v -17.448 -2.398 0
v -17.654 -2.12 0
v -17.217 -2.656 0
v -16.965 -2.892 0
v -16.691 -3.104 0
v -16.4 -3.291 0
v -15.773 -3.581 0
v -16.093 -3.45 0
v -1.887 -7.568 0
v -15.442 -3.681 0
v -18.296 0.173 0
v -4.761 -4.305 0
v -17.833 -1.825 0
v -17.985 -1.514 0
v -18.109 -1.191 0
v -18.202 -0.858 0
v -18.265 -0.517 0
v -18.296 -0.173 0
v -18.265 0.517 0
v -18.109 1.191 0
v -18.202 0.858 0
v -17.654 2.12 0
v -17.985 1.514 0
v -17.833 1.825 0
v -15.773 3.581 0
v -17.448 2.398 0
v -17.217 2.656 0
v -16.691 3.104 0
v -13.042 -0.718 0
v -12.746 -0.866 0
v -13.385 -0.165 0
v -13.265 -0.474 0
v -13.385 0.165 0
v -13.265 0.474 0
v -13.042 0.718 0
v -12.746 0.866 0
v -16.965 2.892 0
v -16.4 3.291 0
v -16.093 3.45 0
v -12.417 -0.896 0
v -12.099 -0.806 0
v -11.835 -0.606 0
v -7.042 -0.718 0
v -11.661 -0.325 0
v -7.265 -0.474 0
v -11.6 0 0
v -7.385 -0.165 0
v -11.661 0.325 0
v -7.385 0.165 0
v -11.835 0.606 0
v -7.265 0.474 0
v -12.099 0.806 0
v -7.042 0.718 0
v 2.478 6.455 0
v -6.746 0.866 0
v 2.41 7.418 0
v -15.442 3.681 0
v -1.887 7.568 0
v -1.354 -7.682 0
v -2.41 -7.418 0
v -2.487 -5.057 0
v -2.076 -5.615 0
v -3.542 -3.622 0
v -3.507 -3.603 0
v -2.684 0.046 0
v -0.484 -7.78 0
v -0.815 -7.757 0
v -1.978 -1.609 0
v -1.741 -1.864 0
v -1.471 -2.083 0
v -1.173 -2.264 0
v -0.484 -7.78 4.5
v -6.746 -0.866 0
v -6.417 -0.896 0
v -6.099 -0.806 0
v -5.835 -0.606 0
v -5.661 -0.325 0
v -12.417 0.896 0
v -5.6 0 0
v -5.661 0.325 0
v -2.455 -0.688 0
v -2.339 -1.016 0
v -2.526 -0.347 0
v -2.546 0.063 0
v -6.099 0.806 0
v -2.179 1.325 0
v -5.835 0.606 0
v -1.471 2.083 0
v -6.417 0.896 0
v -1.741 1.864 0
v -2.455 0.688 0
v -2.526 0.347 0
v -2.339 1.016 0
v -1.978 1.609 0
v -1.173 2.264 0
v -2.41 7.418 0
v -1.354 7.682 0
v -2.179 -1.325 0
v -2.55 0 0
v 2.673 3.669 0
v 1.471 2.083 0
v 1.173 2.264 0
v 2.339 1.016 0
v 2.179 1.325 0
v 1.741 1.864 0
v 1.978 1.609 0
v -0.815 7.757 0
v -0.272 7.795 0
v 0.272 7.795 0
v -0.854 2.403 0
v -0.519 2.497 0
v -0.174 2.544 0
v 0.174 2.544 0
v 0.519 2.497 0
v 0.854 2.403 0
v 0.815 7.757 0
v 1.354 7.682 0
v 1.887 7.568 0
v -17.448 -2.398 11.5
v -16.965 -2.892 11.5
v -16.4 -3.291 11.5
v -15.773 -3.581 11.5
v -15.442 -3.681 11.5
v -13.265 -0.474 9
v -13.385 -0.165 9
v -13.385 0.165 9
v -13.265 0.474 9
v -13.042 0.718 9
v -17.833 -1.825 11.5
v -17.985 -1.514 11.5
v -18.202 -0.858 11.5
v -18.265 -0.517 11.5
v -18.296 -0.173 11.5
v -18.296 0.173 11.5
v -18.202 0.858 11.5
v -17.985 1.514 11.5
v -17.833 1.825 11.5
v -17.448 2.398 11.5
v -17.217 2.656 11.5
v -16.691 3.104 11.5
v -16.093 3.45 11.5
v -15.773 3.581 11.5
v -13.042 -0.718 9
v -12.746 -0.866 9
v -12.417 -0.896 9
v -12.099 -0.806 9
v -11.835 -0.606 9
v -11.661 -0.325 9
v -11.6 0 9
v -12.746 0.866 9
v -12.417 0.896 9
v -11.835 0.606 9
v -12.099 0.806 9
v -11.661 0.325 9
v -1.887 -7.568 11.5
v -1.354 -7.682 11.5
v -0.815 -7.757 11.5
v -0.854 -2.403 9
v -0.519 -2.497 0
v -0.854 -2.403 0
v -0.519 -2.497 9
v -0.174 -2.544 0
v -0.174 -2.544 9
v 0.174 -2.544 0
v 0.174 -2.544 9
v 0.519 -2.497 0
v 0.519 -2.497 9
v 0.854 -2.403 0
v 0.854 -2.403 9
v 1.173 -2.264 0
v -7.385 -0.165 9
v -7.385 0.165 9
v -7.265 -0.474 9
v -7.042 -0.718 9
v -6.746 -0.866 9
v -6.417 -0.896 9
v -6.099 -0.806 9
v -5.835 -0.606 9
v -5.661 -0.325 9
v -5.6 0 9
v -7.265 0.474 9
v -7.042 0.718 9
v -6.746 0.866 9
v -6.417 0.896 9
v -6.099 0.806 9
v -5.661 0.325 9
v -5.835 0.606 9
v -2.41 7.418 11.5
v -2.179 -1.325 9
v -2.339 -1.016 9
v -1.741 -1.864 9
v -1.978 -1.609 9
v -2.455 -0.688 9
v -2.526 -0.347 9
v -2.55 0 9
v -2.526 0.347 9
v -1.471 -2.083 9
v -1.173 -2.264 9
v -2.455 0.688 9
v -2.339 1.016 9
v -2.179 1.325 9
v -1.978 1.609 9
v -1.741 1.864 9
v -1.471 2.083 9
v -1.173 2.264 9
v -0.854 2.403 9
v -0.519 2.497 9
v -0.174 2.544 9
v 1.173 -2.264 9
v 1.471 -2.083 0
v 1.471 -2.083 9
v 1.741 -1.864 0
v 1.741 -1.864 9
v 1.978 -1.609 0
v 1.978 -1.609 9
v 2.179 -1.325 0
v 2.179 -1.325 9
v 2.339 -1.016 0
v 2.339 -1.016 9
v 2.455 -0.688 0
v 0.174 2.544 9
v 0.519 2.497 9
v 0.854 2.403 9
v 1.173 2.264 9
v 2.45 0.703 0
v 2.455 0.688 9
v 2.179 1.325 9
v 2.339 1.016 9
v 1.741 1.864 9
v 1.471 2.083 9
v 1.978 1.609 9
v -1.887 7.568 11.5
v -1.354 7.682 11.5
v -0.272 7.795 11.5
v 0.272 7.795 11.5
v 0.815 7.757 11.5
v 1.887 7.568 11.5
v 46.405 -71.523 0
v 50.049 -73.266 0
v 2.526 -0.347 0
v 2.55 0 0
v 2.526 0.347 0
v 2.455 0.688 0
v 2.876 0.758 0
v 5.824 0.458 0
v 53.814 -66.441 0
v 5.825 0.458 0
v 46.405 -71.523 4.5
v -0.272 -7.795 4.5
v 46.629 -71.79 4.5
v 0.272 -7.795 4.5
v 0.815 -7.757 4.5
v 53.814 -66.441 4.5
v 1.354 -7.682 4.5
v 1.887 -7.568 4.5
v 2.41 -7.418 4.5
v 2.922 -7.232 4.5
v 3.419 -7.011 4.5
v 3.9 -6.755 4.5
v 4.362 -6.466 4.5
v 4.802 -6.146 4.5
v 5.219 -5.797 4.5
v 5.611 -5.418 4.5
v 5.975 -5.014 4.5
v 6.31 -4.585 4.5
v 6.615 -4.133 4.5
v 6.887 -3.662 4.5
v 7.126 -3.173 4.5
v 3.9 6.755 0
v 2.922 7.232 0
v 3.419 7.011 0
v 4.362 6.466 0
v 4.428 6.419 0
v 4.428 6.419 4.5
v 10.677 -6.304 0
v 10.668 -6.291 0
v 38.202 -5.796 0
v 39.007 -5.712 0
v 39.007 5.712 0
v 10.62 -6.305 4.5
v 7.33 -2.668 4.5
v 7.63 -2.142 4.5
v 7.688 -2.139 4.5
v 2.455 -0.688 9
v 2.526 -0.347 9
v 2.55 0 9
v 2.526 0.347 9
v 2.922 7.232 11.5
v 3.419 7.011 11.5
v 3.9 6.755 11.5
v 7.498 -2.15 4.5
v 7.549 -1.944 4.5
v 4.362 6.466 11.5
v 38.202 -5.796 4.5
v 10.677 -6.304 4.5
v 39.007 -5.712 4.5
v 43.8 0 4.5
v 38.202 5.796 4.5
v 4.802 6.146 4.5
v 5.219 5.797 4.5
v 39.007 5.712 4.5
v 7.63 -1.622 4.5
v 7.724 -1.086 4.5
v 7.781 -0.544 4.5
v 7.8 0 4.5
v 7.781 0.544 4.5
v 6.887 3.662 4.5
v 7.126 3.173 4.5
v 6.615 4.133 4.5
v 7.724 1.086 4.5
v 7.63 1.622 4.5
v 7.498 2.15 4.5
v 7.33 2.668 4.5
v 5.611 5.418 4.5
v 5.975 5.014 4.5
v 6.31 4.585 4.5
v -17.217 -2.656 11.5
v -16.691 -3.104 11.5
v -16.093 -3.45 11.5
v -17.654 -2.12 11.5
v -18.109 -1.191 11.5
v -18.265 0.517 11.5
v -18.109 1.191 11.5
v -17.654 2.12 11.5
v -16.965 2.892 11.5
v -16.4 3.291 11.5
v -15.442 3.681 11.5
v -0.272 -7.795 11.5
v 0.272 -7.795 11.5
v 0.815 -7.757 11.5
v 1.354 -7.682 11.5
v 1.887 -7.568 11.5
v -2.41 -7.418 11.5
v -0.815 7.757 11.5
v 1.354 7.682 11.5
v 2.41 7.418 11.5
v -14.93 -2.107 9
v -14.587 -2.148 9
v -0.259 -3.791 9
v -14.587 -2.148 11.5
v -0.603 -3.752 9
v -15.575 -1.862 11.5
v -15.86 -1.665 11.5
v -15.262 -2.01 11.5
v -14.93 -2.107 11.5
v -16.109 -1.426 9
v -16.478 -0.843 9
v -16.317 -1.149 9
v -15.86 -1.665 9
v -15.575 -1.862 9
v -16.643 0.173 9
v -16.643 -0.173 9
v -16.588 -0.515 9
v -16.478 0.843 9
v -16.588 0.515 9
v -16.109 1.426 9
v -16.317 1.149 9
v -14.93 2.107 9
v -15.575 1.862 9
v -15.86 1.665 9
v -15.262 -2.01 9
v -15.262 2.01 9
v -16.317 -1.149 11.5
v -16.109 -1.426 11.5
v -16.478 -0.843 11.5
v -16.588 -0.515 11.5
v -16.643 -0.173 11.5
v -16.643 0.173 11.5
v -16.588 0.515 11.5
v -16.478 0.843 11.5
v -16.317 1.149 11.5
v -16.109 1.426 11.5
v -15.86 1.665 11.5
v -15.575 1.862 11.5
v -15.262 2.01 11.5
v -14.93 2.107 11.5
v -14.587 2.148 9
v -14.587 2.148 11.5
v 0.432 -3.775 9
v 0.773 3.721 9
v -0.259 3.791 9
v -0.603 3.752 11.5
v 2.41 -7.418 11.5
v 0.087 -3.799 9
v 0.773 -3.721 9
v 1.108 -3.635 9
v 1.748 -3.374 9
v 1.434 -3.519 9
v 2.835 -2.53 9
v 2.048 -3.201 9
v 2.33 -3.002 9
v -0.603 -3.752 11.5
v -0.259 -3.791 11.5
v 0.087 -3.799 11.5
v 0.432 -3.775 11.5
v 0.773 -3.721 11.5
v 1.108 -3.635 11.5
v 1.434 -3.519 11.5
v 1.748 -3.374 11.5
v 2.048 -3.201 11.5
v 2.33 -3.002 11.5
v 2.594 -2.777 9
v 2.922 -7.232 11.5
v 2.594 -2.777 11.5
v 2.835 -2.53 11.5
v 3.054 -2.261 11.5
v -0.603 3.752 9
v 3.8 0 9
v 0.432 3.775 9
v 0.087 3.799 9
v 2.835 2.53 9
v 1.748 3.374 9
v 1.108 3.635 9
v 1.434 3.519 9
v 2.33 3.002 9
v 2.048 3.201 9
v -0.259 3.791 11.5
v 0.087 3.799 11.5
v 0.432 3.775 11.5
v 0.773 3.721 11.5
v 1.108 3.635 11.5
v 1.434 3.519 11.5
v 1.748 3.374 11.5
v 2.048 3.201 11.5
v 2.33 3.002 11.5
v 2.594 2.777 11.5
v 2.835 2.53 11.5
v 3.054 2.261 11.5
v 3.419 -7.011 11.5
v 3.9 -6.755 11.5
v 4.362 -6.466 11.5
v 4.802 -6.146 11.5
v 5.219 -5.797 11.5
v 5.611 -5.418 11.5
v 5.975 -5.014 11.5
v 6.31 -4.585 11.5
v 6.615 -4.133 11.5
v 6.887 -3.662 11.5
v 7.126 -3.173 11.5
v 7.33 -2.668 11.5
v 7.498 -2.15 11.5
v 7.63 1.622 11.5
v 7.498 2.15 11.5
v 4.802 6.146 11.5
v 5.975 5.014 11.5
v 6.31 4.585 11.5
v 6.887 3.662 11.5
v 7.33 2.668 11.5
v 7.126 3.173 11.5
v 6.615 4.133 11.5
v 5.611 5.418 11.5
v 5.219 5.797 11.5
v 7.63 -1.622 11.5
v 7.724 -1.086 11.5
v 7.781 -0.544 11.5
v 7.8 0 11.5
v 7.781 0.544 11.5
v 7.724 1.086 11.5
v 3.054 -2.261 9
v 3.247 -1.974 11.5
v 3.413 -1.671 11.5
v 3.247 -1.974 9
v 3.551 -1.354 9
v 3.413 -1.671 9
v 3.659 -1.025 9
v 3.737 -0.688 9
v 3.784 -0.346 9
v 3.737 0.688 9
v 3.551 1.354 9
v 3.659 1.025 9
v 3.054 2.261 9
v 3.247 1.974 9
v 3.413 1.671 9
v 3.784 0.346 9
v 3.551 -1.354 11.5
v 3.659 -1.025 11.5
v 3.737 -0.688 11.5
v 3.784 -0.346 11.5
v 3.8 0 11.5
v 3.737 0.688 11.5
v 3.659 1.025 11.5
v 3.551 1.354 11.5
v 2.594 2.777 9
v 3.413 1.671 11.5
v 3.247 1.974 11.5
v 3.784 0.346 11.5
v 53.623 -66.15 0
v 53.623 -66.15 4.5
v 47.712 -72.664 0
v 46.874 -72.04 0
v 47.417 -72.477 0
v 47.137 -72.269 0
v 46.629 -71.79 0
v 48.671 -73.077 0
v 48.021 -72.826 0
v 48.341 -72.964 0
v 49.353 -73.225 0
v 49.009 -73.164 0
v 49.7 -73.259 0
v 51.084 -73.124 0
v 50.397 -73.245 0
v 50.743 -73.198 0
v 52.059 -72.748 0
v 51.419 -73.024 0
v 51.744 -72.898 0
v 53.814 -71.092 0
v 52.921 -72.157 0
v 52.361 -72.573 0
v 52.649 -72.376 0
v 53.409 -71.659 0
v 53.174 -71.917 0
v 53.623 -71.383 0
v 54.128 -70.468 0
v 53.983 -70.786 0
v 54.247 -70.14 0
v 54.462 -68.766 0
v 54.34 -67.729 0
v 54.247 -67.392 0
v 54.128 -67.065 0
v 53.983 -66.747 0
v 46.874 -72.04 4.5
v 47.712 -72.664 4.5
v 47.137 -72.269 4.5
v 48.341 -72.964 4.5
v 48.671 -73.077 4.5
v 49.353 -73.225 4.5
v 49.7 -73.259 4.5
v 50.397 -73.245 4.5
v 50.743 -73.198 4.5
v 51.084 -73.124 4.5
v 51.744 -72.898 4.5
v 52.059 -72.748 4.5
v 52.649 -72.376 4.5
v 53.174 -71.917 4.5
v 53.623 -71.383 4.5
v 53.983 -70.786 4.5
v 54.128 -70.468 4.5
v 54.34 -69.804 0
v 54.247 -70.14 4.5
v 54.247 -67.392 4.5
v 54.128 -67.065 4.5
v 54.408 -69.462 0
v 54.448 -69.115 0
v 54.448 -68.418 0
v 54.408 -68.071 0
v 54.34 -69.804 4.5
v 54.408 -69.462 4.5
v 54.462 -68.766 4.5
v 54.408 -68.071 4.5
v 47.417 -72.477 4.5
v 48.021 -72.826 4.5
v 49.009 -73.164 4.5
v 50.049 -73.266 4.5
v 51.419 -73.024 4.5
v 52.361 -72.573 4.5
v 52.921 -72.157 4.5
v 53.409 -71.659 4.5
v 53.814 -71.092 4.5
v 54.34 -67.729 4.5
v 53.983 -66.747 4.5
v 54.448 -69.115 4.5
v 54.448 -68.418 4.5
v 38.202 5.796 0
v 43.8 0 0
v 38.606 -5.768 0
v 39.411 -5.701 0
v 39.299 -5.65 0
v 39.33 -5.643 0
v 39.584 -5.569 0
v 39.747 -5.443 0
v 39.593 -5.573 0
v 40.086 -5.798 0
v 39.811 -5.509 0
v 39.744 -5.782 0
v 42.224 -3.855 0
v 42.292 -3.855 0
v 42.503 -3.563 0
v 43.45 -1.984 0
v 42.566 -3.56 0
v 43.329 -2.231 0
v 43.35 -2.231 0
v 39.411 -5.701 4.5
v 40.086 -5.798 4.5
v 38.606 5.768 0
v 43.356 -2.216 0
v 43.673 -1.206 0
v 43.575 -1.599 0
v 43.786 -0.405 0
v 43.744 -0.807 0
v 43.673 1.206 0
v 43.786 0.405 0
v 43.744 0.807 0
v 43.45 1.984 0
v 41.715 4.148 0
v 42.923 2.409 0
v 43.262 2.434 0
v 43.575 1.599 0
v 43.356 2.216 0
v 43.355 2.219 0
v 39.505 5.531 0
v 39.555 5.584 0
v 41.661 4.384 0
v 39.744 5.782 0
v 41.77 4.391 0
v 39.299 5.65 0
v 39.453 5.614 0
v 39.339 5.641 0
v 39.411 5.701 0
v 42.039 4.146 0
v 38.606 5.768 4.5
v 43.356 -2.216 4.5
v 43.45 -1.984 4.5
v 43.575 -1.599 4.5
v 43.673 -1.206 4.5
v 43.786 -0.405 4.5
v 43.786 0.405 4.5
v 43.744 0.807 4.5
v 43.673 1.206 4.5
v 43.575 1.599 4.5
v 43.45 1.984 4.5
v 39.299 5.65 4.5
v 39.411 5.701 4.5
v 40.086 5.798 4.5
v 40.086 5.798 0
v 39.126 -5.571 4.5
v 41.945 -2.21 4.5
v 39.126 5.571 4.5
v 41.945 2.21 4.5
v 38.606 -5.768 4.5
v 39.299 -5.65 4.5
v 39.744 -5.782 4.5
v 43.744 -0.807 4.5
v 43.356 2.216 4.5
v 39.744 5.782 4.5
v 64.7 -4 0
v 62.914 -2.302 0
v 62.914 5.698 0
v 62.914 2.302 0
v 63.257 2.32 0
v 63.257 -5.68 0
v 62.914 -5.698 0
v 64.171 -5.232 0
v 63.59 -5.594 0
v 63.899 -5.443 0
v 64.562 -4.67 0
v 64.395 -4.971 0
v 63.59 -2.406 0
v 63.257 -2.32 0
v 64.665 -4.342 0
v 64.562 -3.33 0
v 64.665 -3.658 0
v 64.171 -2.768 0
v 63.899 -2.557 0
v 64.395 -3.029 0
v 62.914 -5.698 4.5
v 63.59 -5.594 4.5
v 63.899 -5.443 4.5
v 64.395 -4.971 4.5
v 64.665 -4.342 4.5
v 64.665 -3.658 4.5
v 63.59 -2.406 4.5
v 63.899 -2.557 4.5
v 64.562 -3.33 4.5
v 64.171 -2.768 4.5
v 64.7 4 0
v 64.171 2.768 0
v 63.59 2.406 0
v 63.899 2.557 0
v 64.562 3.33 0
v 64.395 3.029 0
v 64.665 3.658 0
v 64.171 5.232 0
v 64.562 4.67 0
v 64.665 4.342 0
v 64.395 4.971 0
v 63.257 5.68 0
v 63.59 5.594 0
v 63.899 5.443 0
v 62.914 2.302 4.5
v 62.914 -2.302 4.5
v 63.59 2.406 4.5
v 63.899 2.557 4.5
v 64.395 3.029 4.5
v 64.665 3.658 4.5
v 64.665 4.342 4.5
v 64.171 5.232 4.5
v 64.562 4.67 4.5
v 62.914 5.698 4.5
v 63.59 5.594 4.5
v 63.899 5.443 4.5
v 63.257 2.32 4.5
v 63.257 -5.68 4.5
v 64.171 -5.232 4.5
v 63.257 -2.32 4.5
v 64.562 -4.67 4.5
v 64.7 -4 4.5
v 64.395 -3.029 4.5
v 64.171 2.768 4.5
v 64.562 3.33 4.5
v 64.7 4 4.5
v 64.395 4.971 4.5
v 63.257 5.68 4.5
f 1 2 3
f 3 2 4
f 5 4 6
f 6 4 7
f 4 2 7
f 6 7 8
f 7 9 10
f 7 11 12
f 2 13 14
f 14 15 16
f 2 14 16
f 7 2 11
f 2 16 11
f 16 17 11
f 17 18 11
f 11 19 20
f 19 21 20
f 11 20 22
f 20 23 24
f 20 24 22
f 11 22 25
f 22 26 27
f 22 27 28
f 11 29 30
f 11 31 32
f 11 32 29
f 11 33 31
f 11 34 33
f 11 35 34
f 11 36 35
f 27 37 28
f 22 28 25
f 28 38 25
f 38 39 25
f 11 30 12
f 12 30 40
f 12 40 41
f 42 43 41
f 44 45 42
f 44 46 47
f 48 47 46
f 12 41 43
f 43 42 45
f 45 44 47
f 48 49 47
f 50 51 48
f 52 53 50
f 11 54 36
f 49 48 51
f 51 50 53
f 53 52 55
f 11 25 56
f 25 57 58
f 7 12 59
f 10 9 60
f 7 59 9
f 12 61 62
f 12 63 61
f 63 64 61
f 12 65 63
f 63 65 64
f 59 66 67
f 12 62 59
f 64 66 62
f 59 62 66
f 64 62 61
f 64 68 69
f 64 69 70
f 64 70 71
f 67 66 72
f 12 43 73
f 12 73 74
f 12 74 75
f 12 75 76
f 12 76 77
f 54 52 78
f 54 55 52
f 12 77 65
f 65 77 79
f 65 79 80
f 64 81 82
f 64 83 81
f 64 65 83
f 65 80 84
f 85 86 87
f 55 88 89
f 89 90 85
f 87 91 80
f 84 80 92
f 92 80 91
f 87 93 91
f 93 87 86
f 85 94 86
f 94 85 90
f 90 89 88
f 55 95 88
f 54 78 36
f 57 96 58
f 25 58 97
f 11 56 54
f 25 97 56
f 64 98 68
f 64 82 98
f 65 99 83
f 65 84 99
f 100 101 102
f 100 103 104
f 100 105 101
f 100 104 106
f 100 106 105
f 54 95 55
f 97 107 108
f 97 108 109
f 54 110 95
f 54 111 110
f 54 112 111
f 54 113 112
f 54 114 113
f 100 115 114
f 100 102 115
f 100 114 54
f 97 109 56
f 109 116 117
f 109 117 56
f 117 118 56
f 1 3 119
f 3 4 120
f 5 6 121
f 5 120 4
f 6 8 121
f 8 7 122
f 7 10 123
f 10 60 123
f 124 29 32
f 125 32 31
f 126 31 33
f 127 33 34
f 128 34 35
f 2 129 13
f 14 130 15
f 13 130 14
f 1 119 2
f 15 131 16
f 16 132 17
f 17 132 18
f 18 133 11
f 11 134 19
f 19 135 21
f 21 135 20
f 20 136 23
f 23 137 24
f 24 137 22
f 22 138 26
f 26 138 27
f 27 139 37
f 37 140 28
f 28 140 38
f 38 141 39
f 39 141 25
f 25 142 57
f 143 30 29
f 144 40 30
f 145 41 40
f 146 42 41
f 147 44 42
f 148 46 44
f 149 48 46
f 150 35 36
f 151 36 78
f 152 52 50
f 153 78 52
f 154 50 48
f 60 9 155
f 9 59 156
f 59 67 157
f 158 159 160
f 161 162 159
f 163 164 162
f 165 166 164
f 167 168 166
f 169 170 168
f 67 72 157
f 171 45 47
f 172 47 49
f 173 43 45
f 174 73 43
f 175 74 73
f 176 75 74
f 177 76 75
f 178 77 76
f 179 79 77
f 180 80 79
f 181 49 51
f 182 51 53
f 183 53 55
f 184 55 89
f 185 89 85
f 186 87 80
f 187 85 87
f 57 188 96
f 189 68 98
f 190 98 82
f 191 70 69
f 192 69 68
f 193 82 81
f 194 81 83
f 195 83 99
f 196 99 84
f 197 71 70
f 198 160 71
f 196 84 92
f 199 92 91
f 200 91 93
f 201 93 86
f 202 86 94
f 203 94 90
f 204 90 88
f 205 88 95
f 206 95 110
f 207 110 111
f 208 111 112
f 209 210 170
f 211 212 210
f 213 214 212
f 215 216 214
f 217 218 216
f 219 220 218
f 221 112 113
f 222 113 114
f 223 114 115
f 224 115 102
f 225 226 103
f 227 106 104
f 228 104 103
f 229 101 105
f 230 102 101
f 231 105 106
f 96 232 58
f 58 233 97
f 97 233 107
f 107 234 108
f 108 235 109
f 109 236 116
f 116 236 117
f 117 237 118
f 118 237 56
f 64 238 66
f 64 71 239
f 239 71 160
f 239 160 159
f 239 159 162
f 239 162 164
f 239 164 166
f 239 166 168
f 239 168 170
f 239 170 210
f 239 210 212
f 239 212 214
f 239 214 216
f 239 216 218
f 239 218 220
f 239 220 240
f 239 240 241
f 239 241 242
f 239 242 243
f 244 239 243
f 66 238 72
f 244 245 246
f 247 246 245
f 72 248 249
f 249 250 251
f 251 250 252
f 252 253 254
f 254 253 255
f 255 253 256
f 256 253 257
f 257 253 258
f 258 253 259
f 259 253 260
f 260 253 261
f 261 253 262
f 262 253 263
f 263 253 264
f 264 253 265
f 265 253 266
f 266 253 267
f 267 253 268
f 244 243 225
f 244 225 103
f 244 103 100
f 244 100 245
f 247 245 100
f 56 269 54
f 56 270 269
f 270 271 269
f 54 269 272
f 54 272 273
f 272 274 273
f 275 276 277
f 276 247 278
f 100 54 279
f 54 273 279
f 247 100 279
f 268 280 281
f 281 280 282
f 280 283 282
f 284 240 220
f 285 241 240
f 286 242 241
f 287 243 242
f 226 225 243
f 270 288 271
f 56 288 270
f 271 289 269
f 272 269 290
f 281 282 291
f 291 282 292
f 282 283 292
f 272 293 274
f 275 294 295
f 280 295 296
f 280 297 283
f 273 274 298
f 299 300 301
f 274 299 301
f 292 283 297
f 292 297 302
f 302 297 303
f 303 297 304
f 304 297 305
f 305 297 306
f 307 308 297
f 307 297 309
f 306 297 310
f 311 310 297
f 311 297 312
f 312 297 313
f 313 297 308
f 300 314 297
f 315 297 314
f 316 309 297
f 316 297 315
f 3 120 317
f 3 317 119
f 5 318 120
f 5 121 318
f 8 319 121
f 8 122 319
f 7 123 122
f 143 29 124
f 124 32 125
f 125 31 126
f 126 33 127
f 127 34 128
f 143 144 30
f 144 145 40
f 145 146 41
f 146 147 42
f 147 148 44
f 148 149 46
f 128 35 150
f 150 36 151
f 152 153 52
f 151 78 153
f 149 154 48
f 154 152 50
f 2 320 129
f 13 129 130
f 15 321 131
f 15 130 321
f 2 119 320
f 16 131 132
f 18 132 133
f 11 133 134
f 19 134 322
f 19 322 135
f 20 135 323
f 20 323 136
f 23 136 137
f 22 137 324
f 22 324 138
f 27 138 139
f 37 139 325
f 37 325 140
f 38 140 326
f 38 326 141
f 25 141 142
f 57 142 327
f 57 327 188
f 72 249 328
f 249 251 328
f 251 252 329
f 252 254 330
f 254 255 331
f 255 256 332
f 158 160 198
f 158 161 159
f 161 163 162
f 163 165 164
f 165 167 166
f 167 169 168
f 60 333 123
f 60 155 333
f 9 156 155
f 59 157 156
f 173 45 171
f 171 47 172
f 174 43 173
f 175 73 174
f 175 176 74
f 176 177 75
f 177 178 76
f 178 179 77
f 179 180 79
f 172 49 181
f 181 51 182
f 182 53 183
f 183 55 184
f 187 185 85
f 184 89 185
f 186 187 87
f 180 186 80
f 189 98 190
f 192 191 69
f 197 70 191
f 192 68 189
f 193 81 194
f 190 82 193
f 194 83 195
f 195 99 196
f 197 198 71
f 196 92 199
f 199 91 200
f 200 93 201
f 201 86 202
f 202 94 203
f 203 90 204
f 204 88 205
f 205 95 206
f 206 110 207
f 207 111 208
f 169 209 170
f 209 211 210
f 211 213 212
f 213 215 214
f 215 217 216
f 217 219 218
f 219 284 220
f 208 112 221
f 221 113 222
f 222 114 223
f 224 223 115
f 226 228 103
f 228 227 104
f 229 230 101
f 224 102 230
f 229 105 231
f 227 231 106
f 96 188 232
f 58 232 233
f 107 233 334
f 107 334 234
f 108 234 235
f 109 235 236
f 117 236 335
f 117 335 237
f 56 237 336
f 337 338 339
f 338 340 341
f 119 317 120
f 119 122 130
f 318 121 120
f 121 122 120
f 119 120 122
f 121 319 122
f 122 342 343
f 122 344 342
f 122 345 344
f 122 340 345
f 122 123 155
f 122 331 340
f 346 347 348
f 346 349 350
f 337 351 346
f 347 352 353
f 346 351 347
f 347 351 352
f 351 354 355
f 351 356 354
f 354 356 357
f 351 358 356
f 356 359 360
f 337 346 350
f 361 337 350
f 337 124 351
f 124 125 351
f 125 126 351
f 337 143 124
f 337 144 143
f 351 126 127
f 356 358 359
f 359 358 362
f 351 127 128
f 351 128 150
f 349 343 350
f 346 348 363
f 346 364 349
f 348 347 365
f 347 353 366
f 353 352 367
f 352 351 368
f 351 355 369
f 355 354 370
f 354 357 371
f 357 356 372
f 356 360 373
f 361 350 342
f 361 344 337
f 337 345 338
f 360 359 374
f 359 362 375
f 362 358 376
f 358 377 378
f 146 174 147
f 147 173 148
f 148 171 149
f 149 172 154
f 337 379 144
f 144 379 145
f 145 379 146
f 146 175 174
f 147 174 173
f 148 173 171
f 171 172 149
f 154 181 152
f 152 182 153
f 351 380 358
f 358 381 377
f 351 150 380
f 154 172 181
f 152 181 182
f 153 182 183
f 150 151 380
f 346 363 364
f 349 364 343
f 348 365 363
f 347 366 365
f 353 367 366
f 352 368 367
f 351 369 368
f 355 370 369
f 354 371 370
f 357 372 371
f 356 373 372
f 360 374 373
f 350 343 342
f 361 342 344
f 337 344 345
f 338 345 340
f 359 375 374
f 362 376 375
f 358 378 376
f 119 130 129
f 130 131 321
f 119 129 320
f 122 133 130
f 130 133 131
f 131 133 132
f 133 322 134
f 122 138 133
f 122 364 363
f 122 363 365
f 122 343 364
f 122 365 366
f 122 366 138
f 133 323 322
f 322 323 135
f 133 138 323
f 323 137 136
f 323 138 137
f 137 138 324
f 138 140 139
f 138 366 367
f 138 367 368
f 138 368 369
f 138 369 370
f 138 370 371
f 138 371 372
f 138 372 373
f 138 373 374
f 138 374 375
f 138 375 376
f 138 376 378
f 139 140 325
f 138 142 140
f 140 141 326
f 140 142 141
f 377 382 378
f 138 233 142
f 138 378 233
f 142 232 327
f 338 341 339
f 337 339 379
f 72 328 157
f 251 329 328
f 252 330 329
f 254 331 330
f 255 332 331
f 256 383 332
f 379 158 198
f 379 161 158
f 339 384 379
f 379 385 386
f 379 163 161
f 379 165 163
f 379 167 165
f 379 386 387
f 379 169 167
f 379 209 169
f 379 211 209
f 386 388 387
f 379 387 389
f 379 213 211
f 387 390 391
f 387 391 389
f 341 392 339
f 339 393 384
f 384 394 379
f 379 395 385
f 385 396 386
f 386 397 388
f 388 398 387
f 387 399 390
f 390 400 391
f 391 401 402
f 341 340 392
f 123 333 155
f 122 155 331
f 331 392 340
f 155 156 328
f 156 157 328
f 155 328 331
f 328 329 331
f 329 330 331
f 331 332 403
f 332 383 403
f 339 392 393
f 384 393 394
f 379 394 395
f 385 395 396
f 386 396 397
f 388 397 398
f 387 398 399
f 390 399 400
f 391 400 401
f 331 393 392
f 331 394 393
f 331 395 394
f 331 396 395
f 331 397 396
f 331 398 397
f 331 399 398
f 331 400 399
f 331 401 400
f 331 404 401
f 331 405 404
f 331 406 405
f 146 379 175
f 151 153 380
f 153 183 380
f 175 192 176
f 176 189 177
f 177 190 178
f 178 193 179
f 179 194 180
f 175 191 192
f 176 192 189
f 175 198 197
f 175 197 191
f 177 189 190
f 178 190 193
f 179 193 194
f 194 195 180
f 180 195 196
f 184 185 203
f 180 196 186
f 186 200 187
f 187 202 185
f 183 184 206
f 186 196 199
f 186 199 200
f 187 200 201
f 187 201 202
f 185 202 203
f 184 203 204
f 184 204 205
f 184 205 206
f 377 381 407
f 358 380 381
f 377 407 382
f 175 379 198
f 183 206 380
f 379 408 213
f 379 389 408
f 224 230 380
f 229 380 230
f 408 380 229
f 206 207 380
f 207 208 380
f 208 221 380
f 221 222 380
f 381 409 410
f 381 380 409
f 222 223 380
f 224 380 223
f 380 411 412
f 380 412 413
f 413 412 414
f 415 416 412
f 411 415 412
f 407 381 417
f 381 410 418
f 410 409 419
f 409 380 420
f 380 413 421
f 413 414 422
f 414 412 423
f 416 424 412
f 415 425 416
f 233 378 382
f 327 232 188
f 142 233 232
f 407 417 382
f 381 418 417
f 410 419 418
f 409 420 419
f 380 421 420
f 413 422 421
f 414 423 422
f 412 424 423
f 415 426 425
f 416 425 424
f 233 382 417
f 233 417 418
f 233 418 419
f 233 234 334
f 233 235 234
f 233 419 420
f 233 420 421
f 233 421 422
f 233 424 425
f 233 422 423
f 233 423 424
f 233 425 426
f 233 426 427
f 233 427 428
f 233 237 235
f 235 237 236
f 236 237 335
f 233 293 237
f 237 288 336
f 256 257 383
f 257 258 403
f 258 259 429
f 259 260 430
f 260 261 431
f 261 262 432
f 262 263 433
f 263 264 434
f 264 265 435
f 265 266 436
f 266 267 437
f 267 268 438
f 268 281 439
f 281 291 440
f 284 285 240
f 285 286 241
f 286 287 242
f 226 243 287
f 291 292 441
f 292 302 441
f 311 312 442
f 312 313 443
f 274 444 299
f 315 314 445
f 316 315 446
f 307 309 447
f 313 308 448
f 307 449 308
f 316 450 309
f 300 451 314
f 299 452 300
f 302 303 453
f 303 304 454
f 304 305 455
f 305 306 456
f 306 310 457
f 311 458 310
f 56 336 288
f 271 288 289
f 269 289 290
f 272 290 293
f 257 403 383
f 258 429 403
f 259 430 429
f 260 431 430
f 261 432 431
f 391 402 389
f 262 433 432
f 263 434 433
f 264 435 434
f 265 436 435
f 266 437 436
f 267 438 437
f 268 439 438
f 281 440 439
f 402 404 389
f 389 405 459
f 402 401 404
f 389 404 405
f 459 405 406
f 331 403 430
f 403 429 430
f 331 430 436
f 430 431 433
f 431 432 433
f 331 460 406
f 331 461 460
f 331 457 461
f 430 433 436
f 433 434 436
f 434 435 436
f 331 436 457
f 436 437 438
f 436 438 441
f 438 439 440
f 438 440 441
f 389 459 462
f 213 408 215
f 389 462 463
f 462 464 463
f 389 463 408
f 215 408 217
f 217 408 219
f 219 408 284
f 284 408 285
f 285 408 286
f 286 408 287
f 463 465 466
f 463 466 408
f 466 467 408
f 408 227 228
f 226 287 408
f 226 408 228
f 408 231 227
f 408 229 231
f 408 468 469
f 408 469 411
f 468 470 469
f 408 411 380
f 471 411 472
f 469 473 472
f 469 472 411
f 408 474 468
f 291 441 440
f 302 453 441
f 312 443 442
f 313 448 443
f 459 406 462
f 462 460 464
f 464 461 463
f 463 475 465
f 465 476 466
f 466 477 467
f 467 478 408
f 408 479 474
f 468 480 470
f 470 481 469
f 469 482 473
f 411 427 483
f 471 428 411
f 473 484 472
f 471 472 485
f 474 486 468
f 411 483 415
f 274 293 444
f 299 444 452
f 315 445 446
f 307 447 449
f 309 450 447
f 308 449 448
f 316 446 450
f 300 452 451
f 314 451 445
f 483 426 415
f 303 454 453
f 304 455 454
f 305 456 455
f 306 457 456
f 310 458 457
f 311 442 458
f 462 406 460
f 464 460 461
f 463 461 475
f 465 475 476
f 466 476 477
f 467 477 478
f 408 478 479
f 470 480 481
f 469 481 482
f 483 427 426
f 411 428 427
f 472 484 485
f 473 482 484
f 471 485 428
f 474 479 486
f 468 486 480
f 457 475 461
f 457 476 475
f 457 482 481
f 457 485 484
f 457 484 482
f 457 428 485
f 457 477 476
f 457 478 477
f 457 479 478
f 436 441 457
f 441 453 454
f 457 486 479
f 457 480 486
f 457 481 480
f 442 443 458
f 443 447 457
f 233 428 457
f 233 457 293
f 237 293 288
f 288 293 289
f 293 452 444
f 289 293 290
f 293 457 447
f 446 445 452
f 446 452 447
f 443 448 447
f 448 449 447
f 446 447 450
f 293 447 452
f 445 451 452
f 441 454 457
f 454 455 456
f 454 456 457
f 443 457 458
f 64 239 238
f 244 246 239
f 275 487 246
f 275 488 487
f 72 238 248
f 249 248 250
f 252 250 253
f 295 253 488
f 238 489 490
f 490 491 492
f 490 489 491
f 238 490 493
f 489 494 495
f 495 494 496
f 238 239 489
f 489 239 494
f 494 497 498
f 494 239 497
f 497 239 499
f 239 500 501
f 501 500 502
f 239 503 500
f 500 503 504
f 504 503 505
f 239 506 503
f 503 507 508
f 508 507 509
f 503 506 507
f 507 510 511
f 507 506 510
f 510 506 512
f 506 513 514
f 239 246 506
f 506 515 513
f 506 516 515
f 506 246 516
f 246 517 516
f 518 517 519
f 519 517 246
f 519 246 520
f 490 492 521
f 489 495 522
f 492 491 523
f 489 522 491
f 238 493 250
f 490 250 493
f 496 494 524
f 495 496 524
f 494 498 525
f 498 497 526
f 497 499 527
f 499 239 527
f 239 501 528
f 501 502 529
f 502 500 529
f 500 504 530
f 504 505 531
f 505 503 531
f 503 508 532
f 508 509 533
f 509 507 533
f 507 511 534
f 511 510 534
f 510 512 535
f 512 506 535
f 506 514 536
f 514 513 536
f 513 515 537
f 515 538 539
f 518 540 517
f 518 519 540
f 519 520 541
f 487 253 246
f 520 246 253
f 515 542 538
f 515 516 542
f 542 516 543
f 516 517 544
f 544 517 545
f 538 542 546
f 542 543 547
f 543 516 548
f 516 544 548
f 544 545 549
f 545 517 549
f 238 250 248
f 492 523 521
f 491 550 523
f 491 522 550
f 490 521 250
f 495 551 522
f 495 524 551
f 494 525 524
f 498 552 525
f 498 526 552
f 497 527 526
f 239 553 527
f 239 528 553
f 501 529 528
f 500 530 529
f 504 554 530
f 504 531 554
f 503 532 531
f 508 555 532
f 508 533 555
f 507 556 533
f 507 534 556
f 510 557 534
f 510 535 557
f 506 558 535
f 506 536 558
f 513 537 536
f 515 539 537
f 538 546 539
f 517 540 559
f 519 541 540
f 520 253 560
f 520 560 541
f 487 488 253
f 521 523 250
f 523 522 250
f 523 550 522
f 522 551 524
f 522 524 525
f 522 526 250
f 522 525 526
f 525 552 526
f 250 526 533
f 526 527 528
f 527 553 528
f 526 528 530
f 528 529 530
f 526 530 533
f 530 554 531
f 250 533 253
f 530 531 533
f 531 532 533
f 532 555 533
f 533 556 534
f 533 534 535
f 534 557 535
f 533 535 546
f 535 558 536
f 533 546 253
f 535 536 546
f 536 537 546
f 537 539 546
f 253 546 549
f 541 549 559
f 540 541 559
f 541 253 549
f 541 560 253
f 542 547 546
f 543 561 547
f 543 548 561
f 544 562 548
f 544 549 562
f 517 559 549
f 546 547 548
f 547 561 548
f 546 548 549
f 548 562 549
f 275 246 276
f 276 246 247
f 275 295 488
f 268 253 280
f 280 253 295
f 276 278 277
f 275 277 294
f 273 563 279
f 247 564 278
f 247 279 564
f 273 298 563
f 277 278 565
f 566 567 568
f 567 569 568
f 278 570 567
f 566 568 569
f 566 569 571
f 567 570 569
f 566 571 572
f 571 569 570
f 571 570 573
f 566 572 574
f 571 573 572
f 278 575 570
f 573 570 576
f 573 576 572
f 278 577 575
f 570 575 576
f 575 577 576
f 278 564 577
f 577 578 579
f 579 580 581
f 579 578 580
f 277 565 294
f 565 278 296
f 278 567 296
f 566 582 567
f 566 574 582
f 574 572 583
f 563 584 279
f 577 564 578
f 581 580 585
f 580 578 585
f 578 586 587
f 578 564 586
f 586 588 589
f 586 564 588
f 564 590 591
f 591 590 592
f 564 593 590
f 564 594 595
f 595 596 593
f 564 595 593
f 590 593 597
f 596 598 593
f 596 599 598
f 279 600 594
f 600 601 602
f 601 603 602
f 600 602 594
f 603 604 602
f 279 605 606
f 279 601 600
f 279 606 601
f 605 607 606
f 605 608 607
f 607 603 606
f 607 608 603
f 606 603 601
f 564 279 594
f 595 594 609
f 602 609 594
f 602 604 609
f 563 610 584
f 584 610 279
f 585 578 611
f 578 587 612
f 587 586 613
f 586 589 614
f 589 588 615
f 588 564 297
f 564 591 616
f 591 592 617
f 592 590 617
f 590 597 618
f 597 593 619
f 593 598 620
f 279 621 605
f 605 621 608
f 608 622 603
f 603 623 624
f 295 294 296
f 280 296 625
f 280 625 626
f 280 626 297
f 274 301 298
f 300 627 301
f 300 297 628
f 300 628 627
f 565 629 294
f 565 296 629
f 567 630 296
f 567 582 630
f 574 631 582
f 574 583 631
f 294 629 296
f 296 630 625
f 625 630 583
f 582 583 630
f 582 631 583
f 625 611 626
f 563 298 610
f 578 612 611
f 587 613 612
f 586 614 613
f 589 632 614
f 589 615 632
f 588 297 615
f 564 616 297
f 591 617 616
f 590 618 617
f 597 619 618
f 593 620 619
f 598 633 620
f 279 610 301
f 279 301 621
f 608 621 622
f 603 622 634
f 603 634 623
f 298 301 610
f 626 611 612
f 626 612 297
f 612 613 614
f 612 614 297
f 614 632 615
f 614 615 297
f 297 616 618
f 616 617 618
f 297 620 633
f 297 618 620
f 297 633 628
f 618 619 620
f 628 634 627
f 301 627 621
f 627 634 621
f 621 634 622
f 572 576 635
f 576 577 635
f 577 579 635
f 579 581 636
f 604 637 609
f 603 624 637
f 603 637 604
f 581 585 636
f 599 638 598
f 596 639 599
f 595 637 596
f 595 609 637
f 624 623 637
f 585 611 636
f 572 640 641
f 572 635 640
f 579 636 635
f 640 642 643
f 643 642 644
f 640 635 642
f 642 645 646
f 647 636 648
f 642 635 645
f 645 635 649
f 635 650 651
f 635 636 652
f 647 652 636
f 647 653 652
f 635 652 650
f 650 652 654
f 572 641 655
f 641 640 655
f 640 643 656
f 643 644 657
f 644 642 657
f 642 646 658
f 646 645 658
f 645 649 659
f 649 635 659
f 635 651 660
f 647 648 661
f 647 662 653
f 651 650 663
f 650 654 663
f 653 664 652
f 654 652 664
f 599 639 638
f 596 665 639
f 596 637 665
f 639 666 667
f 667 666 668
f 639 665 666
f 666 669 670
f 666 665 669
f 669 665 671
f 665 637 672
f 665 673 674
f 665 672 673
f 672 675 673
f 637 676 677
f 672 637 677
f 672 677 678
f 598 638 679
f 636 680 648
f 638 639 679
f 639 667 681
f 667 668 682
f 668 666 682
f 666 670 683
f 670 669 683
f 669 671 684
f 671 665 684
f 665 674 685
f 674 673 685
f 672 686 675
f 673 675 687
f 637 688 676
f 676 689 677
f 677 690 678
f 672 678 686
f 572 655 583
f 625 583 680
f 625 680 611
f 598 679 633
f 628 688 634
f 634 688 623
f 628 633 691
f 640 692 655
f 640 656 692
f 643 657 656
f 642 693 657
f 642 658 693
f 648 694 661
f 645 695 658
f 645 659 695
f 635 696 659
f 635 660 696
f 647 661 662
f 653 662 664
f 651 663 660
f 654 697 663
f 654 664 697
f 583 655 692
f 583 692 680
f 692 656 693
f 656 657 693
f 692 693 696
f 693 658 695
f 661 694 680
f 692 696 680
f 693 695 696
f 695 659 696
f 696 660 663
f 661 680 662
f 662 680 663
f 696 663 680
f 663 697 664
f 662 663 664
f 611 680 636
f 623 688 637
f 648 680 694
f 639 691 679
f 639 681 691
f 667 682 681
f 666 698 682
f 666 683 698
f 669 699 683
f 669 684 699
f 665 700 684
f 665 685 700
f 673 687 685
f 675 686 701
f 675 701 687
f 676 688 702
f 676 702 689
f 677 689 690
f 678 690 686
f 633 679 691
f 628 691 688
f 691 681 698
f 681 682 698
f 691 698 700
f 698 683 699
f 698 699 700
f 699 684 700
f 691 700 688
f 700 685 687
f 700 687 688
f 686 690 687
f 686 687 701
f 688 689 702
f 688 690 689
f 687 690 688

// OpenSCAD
// Hauntology Tabletop Print Kit — Prop #1: Ghost in the Box (Dual-Stage Servo Lever Arm)
// Colour: Ink (#0b0d10) or Leather (#6b4d33)
// Size: 92 L x 55 W x 11.5 H mm
// Mechanism: Driven by -Y SG90 shaft in XZ plane (arm at Y = -11.0..-6.5; stepped boss reaches Y = +0.5
//            to engage the SG90 horn outside the ghost track). Stage 1 cam nose (+54 deg in XZ -> -54 deg in STL)
//            opens the lid 30 deg; Stage 2 slotted fork (4.4 mm slot for 3.8 mm ghost pin) lifts ghost +35 mm!
// Print orientation: Flat on base (Z = 0), zero supports.

include <_common.scad>

module prop_01_lever_arm() {
  difference() {
    union() {
      // 1. Stepped servo hub & horn boss (Z = 0..11.5 extends +Y toward SG90 spline outside ghost track X <= -40.7)
      hull() {
        cylinder(h = 11.5, d = 15.6);
        translate([-14.5, 0, 0]) cylinder(h = 11.5, d = 7.6);
      }

      // 2. Stage 1 Lid-Lift Cam Nose (at -54 deg, R = 85 mm -> becomes +54 deg upward in XZ when mounted via Rx(-90))
      //    R = 85 (was 52) so the nose pushes the lid ramp on to 30 deg, enough for the ghost's full 35 mm lift (it needs 25 deg).
      //    The nose swings into the chest's left wall past about 50 deg of fork travel, so the servo must stop at 30 deg.
      hull() {
        cylinder(h = 4.5, d = 10.0);   // 10 mm root: a 14 mm root leaves sliver triangles where it meets the hub circle
        translate([85.0 * cos(-54), 85.0 * sin(-54), 0])
          cylinder(h = 4.5, d = 9.0);
      }

      // 3. Stage 2 Ghost-Lift Fork Arm (R = 0..64 mm; prongs from R = 40 to 64 mm with 4.4 mm internal slot for 3.8 mm pin)
      hull() {
        cylinder(h = 4.5, d = 13.0);
        translate([38.0, 0, 0])
          cylinder(h = 4.5, d = 11.6);
      }
      for (sy = [-1, 1]) {
        hull() {
          translate([40.0, sy * 4.0, 0]) cylinder(h = 4.5, d = 3.6);
          translate([63.0, sy * 4.0, 0]) cylinder(h = 4.5, d = 3.4);
        }
      }
    }

    // 4. SG90 Horn Pocket on Boss Top Face (Z = 9.0..11.5; pointed toward -X away from left U-track)
    translate([0, 0, -0.1])
      cylinder(h = 12.0, d = sg90_spline_d);
    translate([0, 0, 9.0])
      hull() {
        cylinder(h = 3.0, d = sg90_horn_hub_d);
        translate([-14.5, 0, 0]) cylinder(h = 3.0, d = sg90_horn_tip_d);
      }
    // M2 horn attachment holes
    for (hx = [-6.5, -12.5]) {
      translate([hx, 0, -0.1])
        cylinder(h = 12.0, d = 1.8);
    }
  }
}

color(col_ink) prop_01_lever_arm();
